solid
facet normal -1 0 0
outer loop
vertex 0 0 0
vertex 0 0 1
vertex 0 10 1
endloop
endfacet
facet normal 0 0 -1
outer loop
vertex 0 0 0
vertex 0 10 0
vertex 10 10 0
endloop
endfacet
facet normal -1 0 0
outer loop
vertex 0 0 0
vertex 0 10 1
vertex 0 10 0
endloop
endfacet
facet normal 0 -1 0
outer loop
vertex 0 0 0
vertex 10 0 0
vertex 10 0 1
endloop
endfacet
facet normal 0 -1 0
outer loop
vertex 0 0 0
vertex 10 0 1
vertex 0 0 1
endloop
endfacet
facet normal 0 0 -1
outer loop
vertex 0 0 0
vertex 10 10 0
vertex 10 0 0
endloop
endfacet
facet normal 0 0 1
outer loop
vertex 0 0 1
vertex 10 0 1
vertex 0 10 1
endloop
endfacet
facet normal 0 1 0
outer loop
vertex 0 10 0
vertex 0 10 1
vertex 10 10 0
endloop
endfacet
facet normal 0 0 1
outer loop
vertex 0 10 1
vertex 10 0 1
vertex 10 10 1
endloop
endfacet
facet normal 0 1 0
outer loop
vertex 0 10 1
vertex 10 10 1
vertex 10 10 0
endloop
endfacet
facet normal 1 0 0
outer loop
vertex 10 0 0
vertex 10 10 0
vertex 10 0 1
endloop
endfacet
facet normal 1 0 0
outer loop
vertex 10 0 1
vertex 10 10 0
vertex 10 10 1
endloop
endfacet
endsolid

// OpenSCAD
/* Warning, this is a very basic generator with a lot of approximation 
input data : [TQFP, TYX, 10x10x1.0mm, 44, , C, C04-00076C]
generated by com.zoubworld.electronics.cad.model3d.Basic
Date : Sun Feb 15 10:50:48 CET 2026
*/

//body
color("black")
translate([0,0,0])
cube([10.0,10.0,1.0], center=false);
